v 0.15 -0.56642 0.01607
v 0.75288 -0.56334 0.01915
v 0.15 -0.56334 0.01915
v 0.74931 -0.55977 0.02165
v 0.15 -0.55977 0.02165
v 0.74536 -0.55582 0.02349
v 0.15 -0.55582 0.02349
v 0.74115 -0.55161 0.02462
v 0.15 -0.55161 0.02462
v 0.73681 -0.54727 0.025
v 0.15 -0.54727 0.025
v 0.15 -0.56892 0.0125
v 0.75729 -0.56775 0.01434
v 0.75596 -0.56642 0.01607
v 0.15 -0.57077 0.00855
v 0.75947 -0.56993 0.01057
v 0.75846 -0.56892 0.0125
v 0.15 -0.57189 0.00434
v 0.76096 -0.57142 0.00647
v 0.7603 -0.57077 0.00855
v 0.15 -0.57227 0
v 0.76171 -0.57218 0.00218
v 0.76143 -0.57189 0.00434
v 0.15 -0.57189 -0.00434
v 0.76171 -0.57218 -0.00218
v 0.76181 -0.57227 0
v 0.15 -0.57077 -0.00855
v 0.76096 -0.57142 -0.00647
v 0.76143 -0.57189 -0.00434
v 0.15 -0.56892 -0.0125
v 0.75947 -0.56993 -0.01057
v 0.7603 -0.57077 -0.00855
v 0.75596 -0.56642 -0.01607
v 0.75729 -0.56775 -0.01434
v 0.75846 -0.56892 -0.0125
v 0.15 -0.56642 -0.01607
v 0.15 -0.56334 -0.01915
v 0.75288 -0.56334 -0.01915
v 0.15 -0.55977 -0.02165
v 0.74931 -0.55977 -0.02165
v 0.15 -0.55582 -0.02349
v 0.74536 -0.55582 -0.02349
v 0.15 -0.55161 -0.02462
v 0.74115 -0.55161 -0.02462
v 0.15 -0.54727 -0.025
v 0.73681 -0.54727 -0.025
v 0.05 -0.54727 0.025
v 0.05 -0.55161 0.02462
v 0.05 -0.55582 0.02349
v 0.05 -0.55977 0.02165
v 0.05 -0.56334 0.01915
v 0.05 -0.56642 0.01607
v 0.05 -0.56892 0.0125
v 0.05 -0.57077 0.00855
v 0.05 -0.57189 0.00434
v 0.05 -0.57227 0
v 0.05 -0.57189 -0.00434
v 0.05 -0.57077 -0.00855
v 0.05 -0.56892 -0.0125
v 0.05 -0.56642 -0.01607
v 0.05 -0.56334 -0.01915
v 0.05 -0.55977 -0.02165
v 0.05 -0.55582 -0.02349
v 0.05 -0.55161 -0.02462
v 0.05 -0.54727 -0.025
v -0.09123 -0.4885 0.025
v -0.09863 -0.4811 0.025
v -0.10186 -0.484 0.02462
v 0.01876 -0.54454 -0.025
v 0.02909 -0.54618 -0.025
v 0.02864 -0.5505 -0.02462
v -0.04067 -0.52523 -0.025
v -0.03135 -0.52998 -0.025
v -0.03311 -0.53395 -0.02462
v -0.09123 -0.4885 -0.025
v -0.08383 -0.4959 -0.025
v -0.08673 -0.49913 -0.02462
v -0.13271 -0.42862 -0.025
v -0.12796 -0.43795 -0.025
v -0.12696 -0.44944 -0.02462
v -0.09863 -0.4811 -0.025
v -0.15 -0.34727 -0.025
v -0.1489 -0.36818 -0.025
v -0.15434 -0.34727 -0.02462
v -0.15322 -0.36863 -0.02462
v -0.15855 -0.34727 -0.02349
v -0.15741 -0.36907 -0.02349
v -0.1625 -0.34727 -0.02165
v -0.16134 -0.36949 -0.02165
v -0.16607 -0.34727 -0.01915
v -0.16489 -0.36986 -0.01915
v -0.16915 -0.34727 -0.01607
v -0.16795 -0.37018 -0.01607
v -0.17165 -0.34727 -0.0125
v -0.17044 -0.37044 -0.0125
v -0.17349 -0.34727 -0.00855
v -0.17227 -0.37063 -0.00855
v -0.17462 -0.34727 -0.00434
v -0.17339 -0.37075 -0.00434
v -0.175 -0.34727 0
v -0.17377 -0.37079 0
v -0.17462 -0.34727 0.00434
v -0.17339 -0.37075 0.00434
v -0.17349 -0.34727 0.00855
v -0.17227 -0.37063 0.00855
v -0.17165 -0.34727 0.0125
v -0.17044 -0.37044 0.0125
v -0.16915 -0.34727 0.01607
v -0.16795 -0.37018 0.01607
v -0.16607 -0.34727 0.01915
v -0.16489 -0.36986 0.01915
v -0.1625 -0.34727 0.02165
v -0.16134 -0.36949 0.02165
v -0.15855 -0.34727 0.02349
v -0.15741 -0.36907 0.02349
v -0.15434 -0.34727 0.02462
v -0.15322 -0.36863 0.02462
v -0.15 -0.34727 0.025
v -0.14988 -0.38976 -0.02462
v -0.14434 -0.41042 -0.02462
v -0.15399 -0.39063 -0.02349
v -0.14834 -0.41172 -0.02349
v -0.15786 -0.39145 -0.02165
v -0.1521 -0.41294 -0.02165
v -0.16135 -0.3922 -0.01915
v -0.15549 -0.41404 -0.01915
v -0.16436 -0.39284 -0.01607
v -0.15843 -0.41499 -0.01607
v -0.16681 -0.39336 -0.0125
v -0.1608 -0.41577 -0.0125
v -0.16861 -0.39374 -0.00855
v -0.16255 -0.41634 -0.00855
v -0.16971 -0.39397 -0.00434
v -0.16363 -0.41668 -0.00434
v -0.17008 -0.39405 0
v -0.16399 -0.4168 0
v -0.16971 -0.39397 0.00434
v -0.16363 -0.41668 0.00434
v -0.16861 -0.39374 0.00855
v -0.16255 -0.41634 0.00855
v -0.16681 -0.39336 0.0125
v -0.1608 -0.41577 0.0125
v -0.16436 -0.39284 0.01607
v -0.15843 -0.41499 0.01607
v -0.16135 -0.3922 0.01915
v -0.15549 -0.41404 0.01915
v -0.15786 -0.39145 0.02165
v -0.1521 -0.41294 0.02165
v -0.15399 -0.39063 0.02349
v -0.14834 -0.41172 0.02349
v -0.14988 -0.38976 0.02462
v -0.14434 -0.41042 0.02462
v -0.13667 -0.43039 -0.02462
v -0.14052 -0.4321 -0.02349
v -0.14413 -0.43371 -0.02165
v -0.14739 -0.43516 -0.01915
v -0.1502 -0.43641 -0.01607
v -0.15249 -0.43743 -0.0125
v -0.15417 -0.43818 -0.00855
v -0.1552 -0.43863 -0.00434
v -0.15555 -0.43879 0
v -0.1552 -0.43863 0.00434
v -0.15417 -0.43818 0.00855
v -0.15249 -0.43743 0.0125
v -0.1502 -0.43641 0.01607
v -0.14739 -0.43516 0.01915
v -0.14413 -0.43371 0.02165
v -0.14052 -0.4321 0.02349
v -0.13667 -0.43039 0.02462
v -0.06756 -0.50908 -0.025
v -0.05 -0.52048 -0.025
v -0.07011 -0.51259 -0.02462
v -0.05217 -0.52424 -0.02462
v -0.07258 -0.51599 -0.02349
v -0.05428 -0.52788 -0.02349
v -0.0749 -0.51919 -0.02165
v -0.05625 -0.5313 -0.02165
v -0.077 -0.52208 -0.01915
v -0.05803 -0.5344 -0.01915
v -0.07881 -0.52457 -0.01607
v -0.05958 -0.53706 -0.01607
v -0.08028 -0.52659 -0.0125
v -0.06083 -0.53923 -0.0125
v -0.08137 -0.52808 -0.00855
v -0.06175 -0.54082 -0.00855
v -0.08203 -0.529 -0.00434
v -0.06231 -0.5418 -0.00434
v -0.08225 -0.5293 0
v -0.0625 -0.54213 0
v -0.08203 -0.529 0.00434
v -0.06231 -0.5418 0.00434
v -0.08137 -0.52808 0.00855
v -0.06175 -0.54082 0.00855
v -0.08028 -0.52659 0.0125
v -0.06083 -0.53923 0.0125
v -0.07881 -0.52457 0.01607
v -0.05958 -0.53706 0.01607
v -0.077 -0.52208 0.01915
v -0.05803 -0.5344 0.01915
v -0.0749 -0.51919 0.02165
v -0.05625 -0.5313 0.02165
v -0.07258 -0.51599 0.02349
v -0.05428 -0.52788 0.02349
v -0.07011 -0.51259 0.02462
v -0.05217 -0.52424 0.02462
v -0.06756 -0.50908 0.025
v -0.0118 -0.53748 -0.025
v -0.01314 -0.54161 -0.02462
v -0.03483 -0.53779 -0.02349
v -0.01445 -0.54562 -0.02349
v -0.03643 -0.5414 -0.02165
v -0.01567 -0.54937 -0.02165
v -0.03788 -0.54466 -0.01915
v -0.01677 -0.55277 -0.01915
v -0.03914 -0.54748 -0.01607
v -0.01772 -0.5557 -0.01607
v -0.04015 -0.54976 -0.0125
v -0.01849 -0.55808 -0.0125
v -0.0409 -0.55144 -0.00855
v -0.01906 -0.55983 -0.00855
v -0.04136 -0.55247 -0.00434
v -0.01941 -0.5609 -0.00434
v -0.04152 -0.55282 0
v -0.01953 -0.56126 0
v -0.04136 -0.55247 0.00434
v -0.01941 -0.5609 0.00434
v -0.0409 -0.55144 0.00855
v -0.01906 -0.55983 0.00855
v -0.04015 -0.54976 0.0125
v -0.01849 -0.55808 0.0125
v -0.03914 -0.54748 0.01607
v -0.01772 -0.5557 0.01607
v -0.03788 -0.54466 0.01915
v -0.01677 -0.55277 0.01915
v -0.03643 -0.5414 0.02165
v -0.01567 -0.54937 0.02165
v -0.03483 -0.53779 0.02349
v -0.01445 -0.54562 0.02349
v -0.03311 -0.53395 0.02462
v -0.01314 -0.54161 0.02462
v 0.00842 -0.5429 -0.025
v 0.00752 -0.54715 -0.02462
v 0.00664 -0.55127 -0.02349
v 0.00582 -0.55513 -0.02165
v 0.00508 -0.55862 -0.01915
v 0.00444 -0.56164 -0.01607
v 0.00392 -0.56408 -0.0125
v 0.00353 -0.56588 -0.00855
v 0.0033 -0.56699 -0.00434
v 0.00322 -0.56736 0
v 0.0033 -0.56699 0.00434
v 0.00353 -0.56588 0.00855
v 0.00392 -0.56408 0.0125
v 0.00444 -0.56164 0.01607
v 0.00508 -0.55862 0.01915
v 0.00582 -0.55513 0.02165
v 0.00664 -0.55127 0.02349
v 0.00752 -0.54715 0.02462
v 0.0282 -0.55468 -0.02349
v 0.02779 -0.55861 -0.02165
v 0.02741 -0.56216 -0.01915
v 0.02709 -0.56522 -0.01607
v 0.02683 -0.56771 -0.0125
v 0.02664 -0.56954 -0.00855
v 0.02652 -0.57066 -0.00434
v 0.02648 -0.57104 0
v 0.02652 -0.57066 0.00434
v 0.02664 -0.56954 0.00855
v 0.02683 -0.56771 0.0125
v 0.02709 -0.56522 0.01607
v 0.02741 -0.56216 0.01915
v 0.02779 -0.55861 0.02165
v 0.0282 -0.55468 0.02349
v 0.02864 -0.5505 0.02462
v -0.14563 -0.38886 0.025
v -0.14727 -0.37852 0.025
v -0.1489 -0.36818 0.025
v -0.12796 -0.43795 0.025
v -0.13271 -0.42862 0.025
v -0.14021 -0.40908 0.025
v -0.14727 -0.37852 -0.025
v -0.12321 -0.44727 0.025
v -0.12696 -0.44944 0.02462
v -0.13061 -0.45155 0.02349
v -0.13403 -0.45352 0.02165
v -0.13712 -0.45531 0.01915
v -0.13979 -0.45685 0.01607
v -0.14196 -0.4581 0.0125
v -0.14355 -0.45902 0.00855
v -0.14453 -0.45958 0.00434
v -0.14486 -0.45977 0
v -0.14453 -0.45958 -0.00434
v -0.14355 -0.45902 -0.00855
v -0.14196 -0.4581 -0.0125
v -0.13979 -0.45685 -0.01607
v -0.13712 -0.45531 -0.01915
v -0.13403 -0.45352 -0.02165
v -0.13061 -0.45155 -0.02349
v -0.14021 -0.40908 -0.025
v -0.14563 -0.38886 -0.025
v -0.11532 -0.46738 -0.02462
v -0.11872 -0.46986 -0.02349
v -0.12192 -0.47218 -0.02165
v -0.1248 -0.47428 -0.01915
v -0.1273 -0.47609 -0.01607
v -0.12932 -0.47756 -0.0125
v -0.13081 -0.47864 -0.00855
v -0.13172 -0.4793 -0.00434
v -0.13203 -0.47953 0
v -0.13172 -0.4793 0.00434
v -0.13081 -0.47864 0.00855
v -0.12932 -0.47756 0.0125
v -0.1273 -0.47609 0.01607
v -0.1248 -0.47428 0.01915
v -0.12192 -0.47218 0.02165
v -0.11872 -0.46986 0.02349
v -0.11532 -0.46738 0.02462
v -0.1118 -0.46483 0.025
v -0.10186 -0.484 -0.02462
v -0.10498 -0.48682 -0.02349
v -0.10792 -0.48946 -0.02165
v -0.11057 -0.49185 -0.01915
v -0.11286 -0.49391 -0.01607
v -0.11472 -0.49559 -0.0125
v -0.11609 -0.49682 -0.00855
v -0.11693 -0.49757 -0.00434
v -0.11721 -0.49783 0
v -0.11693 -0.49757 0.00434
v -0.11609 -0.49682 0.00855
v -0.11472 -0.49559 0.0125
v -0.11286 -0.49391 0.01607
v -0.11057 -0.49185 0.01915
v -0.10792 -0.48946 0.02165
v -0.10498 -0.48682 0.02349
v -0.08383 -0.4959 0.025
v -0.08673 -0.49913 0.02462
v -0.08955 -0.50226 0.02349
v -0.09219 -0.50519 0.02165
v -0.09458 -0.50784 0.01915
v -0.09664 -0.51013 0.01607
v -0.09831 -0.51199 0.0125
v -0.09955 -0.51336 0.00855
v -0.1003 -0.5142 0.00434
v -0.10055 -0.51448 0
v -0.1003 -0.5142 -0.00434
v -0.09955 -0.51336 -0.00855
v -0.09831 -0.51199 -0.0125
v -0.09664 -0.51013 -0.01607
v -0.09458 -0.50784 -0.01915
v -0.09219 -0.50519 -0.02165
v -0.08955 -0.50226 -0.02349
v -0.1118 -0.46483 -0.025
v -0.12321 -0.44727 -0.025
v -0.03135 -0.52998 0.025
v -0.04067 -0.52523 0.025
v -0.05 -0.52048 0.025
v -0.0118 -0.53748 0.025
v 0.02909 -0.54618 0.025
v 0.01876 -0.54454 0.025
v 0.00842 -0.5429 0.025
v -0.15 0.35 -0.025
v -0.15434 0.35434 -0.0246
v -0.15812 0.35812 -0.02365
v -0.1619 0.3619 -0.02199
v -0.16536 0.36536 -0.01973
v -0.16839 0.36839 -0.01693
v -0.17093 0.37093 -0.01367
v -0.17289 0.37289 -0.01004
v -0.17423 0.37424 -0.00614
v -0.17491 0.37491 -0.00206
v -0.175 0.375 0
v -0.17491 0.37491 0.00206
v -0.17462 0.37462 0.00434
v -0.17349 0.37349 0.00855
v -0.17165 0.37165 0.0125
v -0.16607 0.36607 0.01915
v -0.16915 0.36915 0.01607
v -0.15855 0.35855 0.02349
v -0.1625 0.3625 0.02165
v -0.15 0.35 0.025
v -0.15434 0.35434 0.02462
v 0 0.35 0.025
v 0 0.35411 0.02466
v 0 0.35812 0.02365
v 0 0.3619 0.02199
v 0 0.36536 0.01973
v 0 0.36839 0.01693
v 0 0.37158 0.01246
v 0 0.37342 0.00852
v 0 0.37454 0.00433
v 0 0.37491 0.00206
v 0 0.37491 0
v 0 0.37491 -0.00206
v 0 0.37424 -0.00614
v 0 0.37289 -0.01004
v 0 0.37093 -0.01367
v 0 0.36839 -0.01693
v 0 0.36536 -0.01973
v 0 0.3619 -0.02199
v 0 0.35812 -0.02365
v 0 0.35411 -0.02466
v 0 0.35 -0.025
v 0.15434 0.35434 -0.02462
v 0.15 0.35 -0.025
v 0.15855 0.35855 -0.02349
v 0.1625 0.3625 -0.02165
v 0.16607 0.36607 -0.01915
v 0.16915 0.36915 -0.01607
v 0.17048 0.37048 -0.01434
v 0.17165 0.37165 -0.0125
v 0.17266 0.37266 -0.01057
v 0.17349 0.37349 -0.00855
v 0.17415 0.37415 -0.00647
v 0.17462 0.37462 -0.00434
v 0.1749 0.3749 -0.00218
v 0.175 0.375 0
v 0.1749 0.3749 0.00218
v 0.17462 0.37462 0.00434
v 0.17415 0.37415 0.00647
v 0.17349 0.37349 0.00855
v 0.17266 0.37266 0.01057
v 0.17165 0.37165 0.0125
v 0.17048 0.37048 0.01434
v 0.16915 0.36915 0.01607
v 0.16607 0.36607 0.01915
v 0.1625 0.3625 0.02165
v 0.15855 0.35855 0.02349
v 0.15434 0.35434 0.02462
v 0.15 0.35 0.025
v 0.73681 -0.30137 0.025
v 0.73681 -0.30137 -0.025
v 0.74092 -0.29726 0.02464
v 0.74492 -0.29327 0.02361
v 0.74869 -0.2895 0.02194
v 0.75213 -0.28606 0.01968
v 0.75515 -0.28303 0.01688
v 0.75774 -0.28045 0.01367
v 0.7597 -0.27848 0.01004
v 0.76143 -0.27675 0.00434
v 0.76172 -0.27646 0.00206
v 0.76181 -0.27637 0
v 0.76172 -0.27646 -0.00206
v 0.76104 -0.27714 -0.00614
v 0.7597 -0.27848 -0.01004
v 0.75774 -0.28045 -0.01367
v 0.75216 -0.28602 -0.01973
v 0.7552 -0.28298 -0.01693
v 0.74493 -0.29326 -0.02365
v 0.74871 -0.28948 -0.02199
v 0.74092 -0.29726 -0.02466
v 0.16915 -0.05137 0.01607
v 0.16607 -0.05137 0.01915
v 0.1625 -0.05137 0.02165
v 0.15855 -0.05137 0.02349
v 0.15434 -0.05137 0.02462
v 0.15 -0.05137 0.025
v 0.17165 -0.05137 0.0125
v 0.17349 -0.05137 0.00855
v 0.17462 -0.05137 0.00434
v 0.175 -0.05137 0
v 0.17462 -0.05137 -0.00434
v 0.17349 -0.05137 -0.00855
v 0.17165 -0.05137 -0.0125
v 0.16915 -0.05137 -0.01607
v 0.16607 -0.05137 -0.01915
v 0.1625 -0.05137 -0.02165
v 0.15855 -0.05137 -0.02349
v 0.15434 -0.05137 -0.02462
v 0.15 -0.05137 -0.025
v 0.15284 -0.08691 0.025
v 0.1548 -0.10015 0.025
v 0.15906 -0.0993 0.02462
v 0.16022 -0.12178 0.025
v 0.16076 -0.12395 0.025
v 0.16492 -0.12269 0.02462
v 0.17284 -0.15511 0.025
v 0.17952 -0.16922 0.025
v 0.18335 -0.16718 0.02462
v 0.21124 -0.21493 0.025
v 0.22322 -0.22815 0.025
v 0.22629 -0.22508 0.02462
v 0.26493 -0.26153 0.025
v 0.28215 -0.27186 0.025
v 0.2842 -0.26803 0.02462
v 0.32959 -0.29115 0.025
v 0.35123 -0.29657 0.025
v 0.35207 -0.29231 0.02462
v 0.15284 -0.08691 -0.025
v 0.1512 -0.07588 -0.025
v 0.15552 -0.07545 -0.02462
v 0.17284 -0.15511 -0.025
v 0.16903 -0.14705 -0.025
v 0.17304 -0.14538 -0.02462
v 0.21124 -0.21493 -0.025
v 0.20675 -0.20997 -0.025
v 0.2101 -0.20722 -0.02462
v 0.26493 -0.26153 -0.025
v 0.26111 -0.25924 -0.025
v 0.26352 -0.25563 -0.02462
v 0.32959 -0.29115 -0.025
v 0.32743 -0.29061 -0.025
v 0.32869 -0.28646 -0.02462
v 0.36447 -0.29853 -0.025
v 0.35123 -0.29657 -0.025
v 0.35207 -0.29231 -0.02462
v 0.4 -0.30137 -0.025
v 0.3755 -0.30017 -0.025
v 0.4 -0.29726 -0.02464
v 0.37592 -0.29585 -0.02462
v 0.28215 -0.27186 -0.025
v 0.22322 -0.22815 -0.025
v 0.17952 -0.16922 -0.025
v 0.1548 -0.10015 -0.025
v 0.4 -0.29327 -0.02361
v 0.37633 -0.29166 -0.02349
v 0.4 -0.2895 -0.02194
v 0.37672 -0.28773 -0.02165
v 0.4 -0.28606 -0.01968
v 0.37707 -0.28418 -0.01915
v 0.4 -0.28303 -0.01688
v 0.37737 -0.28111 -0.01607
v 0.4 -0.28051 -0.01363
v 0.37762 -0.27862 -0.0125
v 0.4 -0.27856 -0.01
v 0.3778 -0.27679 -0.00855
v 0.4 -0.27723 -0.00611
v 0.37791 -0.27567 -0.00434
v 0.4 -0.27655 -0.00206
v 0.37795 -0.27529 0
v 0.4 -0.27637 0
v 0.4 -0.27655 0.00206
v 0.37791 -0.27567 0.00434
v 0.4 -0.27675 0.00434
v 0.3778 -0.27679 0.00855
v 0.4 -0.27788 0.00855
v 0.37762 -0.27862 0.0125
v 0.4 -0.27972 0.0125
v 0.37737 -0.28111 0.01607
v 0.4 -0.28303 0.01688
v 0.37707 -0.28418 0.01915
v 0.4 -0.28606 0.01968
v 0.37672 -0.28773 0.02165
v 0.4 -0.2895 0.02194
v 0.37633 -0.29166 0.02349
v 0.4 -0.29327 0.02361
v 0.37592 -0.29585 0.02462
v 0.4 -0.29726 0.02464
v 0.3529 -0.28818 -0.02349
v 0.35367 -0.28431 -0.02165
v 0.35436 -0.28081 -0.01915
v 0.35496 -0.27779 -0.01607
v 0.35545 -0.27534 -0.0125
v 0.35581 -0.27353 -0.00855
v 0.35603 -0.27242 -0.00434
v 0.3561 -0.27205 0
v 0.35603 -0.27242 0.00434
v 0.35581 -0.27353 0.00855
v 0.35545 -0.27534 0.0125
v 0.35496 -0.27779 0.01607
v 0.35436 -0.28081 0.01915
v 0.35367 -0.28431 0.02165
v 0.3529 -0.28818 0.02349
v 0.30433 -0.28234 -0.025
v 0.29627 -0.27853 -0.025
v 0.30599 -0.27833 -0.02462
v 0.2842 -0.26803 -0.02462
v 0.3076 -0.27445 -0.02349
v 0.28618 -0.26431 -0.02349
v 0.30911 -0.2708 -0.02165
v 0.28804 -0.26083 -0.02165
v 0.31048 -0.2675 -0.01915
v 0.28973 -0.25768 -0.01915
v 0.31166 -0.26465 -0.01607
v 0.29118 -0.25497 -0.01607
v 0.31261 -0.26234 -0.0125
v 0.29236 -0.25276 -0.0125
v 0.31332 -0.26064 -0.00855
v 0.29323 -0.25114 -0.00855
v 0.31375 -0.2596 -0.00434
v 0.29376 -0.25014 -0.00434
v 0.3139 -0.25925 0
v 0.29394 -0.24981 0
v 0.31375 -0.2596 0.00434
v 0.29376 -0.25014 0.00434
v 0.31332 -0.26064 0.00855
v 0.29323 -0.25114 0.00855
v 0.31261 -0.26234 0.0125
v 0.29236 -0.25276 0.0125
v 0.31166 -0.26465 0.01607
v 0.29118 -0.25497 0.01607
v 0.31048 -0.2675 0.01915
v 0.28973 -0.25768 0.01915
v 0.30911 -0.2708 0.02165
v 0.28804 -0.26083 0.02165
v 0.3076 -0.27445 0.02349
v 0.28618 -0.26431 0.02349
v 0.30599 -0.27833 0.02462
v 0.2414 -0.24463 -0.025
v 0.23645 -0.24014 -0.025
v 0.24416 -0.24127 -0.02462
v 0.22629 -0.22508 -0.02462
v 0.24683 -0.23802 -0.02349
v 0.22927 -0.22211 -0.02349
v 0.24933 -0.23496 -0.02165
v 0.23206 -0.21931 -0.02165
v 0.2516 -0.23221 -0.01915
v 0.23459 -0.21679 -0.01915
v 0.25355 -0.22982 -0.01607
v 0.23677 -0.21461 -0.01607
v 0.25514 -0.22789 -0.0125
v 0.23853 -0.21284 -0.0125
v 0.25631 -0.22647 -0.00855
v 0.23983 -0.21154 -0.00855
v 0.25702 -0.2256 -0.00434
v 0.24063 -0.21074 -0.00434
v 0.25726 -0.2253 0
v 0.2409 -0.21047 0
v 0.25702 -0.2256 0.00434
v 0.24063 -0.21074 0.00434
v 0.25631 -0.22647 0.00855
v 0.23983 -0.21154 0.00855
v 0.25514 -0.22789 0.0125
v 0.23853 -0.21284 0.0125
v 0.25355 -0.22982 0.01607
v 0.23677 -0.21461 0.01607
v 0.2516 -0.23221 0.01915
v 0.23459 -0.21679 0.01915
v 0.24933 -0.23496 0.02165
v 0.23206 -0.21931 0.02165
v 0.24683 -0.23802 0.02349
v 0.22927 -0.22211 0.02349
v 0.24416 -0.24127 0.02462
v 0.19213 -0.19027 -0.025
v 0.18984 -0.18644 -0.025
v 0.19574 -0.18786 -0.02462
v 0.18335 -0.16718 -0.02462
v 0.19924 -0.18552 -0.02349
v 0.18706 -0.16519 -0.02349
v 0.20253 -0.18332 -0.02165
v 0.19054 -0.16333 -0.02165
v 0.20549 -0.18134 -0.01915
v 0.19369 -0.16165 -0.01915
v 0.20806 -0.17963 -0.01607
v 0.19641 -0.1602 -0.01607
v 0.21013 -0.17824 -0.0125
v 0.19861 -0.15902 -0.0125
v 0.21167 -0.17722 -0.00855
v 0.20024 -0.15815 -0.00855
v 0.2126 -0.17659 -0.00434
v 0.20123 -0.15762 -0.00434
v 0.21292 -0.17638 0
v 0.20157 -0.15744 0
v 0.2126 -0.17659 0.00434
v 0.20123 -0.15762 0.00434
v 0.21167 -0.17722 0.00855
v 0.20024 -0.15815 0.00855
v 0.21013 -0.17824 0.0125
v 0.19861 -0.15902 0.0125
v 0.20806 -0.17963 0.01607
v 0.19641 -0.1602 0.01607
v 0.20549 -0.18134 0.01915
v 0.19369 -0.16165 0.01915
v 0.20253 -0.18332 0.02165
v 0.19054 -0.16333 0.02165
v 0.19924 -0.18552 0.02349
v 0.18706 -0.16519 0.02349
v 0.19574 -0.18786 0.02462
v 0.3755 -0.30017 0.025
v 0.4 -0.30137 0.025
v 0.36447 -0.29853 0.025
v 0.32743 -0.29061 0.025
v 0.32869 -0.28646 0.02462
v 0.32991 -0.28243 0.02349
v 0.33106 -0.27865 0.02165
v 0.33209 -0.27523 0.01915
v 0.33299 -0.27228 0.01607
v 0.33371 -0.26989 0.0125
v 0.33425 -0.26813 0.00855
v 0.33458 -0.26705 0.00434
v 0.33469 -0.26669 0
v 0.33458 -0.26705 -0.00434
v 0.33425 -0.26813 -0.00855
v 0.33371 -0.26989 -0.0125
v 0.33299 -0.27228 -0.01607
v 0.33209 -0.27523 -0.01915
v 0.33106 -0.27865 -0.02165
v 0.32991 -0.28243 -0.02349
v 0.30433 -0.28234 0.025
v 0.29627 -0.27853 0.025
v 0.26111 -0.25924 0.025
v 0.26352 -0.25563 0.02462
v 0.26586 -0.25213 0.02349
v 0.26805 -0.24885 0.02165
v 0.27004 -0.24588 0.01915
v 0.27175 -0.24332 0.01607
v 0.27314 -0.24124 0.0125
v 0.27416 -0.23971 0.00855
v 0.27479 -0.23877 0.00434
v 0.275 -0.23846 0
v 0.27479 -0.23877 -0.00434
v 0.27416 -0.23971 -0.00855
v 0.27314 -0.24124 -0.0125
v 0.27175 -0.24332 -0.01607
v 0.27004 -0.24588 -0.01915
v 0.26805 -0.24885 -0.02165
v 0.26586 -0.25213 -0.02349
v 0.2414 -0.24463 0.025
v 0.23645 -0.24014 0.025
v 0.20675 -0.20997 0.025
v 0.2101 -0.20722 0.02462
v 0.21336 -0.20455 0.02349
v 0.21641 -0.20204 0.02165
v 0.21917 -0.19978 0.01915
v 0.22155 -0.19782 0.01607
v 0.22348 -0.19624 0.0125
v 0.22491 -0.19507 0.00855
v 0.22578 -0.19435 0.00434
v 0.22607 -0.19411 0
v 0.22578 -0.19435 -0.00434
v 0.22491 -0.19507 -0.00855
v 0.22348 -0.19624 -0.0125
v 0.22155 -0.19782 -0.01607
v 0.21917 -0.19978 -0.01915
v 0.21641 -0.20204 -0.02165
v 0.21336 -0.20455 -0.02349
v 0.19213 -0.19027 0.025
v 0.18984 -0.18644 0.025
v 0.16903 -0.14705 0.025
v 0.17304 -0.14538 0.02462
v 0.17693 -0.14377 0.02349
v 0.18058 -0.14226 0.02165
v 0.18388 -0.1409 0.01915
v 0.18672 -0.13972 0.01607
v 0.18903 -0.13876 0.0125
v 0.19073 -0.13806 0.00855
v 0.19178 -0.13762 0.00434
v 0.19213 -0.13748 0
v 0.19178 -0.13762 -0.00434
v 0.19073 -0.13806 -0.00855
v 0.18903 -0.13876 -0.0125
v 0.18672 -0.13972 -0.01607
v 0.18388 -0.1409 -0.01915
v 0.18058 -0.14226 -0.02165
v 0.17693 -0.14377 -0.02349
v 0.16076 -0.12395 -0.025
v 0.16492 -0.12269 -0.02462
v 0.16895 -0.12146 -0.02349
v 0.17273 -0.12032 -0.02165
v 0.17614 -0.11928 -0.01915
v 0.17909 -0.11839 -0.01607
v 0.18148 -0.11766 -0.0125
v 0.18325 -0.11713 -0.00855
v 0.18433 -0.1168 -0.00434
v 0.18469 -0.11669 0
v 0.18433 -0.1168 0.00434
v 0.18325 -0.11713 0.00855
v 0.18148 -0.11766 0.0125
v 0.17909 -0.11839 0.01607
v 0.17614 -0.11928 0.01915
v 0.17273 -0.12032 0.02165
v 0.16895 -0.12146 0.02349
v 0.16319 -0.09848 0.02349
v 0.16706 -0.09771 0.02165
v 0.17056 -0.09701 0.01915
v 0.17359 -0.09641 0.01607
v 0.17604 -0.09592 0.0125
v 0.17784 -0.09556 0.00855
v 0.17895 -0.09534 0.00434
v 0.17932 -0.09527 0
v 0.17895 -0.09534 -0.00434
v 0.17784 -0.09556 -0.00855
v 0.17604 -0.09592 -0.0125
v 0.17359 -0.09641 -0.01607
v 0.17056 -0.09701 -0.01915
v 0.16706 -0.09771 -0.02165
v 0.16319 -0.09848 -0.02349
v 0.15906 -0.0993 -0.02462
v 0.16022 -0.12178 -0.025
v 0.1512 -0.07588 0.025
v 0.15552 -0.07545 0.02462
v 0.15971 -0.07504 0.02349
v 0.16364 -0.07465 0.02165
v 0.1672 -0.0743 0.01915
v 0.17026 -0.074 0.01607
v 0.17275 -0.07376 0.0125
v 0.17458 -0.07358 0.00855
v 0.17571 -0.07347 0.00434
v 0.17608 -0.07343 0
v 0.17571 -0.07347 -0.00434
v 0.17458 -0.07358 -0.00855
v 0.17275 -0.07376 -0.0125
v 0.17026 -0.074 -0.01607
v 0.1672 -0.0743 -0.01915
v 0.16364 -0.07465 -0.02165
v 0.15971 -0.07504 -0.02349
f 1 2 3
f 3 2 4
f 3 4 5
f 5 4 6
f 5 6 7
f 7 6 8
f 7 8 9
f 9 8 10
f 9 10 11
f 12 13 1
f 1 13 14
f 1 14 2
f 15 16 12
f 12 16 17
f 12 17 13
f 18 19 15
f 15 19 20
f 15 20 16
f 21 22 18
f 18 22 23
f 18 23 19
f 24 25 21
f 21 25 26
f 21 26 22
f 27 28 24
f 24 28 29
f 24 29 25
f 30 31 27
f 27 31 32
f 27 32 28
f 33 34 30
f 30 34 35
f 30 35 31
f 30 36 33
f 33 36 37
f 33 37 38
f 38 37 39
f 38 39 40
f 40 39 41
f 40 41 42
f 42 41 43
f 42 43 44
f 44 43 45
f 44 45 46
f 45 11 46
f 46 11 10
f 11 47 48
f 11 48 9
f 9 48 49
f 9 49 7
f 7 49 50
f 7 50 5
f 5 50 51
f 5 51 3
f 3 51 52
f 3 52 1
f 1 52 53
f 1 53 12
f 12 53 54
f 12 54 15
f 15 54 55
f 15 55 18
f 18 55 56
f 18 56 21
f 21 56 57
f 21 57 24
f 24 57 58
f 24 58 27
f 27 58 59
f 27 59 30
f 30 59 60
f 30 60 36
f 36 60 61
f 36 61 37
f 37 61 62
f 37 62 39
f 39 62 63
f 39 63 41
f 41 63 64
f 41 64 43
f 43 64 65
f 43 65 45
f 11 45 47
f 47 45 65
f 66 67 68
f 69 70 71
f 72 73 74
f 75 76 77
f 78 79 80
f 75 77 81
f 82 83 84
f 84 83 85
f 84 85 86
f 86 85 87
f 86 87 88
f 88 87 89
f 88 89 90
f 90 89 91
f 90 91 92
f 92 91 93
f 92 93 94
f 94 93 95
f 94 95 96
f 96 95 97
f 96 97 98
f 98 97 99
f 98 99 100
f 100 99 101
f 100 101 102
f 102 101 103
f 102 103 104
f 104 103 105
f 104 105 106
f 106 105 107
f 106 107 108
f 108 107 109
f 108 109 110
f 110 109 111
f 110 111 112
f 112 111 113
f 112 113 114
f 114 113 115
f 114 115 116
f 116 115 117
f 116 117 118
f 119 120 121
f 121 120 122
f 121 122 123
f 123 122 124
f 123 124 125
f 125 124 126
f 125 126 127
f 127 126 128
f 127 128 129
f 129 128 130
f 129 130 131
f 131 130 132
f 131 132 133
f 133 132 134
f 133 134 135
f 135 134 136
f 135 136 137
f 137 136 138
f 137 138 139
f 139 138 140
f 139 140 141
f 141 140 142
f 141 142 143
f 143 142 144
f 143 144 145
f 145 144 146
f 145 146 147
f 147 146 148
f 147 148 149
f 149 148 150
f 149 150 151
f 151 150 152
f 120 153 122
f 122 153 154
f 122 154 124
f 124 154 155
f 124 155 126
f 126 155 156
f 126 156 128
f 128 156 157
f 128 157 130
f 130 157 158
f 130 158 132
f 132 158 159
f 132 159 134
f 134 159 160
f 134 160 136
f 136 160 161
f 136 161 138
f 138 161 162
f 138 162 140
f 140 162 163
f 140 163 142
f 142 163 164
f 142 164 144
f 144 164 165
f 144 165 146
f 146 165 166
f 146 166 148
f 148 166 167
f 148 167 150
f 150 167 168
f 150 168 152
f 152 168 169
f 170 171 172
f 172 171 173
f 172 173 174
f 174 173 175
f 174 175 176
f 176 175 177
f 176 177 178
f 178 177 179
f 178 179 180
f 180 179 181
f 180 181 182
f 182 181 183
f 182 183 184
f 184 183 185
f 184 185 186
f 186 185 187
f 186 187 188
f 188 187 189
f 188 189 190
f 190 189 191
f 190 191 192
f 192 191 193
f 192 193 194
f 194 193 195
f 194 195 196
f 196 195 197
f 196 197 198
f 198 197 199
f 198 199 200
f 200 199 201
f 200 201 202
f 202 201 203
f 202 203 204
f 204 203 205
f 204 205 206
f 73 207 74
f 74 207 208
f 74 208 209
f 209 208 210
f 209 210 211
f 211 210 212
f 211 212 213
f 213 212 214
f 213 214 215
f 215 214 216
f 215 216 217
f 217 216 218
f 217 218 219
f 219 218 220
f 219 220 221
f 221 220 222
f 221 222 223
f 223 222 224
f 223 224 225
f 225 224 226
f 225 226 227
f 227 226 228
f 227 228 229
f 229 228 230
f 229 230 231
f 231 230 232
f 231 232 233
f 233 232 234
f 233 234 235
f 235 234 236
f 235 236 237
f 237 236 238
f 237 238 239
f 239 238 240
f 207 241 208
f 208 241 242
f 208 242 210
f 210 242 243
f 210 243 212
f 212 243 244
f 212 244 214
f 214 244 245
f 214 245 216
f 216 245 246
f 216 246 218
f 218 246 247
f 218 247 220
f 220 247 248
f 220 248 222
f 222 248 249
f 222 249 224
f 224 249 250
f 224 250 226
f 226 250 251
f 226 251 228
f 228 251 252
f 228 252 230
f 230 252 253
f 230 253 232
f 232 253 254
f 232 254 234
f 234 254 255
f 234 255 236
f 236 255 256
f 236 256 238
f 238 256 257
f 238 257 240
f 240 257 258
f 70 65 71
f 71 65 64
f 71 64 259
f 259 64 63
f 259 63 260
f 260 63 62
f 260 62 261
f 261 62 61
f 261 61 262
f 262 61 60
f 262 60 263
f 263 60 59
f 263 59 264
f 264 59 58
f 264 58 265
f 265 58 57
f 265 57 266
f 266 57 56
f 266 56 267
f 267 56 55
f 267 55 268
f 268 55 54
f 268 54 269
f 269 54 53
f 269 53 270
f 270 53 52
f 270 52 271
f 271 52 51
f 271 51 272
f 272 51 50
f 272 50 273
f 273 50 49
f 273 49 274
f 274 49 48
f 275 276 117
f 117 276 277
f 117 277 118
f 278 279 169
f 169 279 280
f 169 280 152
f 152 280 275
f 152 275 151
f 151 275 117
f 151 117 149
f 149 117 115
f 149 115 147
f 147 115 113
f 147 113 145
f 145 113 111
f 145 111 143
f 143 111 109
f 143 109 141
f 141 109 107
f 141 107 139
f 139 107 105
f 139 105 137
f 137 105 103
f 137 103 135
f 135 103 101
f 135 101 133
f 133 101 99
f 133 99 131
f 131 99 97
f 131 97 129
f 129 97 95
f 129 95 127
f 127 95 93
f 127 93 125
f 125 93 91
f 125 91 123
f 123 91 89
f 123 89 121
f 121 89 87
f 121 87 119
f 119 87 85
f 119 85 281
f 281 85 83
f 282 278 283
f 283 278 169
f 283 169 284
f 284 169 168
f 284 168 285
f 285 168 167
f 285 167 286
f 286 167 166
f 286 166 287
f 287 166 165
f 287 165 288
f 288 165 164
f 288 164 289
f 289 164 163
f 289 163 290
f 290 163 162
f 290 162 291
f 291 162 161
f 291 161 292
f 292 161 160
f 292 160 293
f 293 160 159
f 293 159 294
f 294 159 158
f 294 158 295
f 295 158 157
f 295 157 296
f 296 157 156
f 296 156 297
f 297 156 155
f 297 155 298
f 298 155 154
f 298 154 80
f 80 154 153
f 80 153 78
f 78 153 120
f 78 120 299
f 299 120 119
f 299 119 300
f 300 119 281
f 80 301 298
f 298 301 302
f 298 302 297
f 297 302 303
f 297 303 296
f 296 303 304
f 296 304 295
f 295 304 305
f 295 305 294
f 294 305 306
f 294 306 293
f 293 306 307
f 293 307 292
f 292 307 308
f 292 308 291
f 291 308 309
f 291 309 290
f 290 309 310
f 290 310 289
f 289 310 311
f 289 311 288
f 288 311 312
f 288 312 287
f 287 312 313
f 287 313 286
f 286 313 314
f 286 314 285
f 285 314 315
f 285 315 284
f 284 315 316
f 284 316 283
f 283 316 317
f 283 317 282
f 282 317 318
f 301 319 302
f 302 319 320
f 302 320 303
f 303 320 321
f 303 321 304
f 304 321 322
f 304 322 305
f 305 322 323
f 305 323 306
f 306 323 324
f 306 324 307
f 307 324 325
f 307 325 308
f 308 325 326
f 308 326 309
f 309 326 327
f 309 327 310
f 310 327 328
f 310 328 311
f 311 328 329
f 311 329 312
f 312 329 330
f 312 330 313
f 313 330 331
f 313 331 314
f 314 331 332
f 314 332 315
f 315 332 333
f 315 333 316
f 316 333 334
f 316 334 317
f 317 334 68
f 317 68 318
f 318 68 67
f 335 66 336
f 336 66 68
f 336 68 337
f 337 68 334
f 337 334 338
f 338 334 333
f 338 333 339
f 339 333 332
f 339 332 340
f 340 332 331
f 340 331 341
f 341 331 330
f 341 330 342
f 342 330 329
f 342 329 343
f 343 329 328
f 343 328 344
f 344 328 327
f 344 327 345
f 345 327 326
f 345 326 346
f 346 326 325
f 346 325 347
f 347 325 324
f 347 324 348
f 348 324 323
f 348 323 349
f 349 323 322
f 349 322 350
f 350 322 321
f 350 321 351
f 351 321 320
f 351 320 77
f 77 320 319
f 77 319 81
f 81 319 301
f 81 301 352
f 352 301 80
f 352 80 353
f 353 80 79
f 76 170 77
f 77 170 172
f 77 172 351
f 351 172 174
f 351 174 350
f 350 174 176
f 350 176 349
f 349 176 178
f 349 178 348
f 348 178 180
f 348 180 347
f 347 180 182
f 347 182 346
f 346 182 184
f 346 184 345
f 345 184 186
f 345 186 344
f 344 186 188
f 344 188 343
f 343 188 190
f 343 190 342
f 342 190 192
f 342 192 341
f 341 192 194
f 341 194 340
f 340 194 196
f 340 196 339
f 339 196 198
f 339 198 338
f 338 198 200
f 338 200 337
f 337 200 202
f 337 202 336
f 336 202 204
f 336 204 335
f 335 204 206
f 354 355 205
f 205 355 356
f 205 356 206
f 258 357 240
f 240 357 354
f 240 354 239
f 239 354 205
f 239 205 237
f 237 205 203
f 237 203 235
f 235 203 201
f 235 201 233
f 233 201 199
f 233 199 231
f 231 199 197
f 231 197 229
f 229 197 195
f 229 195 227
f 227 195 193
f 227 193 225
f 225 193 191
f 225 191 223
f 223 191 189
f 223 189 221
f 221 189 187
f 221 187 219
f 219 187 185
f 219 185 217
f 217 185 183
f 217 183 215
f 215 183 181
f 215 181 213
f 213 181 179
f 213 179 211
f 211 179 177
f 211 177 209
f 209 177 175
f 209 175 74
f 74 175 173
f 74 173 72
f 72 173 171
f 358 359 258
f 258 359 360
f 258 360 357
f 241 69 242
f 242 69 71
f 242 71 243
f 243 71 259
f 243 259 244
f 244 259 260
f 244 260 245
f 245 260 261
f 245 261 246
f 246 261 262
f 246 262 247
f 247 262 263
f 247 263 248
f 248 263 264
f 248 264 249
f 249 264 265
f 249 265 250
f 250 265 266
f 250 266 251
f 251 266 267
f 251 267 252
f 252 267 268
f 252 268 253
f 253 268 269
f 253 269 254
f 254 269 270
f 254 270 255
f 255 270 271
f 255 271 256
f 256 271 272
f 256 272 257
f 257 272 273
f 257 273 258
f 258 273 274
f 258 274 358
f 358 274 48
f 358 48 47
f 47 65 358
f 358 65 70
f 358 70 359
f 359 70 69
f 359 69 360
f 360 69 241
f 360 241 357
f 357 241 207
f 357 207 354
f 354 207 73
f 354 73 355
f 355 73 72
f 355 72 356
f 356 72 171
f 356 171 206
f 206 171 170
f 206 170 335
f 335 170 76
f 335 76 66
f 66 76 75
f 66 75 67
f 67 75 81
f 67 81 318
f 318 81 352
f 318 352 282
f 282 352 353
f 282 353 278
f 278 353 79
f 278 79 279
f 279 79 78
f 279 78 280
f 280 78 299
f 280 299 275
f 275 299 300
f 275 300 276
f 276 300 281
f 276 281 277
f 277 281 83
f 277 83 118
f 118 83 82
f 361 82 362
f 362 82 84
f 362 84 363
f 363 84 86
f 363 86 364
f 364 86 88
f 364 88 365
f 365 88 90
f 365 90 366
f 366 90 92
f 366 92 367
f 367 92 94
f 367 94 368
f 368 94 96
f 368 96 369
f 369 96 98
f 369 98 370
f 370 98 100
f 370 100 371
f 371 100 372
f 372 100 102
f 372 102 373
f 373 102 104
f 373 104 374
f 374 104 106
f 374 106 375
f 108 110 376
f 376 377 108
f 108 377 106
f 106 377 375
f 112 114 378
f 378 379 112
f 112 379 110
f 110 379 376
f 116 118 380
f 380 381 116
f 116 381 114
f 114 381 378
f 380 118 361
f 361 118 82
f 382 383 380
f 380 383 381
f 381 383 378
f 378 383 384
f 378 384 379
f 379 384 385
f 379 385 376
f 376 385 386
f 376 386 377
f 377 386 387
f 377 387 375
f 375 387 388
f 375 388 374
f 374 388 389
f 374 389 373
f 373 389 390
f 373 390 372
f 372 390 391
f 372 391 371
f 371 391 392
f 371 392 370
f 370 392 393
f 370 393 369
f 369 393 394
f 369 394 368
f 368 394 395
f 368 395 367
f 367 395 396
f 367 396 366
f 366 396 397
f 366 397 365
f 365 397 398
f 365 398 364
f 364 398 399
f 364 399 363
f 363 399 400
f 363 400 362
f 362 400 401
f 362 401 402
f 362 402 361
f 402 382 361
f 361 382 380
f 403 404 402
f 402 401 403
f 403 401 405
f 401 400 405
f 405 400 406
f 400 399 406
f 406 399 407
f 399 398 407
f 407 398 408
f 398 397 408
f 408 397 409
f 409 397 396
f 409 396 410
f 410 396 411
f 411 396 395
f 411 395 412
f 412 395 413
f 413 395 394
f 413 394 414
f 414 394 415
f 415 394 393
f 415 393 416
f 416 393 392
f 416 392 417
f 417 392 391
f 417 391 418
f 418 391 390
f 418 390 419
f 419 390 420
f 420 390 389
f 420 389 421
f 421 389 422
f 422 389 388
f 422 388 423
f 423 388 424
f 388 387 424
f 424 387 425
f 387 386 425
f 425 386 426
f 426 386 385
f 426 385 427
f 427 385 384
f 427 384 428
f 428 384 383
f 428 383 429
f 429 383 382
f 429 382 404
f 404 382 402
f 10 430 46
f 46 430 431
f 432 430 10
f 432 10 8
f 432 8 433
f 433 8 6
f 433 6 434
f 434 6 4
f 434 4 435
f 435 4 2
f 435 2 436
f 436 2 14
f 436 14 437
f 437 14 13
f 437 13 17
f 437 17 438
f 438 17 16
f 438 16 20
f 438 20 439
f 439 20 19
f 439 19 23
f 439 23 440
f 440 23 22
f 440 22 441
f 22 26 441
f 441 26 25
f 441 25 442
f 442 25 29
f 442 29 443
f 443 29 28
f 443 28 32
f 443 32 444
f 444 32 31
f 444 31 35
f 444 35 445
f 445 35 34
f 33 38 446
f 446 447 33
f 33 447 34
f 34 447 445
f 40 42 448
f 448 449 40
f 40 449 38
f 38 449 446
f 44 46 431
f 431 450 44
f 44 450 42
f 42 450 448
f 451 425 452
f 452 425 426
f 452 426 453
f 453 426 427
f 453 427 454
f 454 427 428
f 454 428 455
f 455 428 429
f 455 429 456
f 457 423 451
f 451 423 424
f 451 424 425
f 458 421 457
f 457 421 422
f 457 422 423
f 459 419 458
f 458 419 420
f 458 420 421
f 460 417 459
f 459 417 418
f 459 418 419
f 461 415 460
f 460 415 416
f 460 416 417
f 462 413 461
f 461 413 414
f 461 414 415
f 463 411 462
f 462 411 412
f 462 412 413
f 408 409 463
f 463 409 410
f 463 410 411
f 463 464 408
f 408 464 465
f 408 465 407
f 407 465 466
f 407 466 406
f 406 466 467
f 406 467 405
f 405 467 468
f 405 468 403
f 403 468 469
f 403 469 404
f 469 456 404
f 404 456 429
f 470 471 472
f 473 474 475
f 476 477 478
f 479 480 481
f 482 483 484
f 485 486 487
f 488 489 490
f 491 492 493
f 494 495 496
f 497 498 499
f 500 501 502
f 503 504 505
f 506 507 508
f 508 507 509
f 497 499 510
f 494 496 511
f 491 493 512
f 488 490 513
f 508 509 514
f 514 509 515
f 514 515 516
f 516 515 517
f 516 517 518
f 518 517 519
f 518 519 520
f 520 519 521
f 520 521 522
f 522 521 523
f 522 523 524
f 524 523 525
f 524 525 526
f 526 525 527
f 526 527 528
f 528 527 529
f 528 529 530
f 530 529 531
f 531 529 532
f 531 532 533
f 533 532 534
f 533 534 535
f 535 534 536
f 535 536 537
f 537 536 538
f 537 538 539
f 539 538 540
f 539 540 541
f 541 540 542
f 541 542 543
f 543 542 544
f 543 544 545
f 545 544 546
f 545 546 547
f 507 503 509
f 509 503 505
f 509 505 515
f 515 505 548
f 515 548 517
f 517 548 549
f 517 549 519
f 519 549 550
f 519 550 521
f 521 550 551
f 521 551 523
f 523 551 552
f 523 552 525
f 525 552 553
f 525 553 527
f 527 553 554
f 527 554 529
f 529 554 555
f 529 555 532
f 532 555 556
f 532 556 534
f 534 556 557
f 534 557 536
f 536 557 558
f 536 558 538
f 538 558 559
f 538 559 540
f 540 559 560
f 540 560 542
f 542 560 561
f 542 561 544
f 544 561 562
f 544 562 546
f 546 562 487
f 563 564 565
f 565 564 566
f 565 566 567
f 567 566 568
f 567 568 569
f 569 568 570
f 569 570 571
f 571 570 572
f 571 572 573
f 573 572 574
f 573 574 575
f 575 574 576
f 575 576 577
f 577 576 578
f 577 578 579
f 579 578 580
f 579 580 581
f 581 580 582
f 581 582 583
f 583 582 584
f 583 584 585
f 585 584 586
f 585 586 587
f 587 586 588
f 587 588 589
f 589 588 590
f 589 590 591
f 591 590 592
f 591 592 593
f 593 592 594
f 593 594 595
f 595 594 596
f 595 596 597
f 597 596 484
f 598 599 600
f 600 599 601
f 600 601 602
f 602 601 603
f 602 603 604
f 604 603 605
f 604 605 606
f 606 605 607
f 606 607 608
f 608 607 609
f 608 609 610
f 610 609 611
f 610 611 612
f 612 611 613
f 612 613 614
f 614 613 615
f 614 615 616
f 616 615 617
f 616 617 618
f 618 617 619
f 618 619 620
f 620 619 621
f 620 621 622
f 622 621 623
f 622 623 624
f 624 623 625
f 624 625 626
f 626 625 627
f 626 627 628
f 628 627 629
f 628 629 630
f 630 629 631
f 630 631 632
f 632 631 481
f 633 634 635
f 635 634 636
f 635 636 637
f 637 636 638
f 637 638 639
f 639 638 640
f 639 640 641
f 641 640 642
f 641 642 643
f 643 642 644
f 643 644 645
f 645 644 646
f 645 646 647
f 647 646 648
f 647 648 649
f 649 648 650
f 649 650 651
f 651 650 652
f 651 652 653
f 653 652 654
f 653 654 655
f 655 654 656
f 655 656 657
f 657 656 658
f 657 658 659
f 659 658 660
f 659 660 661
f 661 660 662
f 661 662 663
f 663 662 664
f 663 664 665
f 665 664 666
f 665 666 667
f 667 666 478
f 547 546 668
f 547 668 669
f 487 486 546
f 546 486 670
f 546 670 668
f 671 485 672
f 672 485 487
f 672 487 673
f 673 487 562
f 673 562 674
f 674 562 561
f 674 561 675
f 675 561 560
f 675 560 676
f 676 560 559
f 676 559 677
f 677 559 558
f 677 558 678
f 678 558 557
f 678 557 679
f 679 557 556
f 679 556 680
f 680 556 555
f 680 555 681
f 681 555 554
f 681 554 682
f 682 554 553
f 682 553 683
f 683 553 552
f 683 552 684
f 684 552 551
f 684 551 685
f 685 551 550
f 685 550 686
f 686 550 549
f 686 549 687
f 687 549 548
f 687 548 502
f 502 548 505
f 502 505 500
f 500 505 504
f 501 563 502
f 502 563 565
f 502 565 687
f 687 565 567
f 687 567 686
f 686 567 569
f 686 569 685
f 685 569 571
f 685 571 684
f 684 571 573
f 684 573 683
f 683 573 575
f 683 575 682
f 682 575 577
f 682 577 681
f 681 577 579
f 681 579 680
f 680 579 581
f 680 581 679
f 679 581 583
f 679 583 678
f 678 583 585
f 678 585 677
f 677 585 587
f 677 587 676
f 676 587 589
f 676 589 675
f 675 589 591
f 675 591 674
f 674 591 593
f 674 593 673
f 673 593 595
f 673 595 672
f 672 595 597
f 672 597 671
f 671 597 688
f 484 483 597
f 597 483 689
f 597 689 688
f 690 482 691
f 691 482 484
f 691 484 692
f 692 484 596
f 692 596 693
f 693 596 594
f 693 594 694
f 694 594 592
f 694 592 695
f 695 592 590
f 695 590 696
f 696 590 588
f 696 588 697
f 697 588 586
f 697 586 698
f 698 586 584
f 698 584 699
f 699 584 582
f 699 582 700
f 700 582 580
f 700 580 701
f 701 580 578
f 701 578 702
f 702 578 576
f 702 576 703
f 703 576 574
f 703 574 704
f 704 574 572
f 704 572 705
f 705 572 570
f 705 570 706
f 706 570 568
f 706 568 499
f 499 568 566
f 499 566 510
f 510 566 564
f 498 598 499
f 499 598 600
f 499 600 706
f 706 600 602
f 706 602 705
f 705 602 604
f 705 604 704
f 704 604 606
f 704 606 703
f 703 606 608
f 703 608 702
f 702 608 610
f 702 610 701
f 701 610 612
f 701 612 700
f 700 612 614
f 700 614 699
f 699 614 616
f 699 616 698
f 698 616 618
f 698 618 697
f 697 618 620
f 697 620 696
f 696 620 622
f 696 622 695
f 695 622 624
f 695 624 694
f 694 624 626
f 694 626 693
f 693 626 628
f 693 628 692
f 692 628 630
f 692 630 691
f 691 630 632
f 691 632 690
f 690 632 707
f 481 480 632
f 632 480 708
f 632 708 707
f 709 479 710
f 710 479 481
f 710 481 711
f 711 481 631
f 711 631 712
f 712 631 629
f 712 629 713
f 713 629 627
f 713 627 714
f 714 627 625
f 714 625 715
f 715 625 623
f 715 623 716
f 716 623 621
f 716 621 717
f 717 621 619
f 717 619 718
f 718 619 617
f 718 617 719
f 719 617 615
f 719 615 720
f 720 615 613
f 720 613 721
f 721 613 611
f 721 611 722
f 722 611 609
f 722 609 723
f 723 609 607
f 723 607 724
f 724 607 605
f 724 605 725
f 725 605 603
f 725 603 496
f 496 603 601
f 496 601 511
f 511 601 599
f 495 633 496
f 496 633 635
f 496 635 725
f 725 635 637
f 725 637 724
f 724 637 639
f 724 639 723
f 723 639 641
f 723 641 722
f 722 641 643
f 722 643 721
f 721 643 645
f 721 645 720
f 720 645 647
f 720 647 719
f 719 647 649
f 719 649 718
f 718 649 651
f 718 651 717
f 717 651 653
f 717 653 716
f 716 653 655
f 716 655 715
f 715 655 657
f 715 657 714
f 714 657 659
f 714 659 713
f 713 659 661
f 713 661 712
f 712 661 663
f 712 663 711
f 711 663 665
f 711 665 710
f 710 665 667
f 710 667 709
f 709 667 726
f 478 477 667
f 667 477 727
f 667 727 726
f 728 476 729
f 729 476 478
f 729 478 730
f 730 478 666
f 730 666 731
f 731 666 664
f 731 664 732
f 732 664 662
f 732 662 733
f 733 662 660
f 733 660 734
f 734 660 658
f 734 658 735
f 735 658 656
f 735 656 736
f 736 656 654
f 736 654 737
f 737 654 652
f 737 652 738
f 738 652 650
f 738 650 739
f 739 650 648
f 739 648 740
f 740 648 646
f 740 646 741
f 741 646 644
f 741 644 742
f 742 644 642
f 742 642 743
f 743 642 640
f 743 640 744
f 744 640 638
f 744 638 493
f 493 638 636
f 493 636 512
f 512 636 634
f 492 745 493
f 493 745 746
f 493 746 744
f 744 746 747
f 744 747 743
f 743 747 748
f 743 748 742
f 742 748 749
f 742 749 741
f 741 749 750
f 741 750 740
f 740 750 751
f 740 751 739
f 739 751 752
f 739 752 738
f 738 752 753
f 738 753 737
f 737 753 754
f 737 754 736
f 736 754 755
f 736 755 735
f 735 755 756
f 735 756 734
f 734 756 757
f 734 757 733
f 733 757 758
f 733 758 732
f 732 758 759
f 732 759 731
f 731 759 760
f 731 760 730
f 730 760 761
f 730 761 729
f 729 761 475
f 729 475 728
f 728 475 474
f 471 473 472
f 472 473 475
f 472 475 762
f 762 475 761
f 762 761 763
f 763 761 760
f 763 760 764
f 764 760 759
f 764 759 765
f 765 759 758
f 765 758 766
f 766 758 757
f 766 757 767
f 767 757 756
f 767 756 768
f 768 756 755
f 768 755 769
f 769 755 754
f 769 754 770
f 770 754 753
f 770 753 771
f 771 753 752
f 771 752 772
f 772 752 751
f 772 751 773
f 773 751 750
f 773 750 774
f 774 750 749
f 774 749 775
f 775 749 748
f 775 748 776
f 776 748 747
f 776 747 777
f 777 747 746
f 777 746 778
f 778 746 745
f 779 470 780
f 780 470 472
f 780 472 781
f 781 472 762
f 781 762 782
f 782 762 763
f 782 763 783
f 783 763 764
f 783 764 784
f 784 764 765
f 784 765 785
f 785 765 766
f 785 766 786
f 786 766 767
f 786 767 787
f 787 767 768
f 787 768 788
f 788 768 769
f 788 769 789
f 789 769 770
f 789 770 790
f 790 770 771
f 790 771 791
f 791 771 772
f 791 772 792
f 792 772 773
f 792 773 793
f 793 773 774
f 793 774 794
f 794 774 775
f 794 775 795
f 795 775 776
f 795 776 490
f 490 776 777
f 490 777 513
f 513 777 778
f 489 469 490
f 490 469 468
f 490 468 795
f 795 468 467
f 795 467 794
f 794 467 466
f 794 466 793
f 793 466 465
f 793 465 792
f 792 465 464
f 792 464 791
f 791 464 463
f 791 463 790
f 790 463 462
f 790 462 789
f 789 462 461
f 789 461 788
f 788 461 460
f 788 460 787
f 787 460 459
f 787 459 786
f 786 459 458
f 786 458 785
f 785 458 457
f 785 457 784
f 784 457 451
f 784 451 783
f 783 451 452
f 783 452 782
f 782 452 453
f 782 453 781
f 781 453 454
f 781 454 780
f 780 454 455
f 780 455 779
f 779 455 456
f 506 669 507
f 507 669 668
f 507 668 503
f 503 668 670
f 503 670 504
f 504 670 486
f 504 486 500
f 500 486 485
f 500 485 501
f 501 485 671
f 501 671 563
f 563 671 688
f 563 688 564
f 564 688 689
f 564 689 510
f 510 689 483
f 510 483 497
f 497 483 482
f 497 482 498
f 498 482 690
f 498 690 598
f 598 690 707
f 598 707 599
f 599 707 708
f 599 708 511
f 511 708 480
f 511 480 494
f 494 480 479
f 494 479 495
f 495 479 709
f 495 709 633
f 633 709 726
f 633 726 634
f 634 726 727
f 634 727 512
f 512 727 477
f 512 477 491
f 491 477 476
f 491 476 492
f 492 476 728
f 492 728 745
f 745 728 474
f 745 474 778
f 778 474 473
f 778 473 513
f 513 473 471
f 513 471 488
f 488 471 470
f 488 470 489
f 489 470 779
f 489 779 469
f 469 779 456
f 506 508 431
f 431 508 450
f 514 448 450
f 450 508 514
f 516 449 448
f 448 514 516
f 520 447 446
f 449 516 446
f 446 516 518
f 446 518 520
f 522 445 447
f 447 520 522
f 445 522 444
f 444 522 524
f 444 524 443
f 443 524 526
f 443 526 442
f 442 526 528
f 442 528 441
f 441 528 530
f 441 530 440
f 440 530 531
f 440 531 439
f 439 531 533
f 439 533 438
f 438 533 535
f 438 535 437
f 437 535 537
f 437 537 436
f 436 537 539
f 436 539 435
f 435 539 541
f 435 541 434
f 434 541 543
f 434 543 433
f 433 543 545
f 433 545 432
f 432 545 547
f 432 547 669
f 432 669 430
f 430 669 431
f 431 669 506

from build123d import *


with BuildPart() as part:
    # Sweep1: sweep along a path in Sketch2
    with BuildLine(Plane.XY) as sweep1_path:
        Line((-0.15, 0.35), (0.15, 0.35))
        Line((0.15, 0.35), (0.15, -0.051374847))
        ThreePointArc((0.15, -0.051374847), (0.223223305, -0.228151543), (0.4, -0.301374847))
        Line((0.4, -0.301374847), (0.736808624, -0.301374847))
        Line((0.736808624, -0.301374847), (0.736808624, -0.547273546))
        Line((0.736808624, -0.547273546), (0.15, -0.547273546))
        Line((0.15, -0.547273546), (0.05, -0.547273546))
        ThreePointArc((0.05, -0.547273546), (-0.091421356, -0.488694902), (-0.15, -0.347273546))
        Line((-0.15, -0.347273546), (-0.15, 0.35))
    # Sketch1 → Sweep1 (sweep)
    with BuildSketch(Plane(origin=(0, 0, 0), x_dir=(0, 0, -1), z_dir=(1, 0, 0))):
        with BuildLine():
            Line((-0.025, 0.35), (0.025, 0.35))
            ThreePointArc((0.025, 0.35), (0, 0.375), (-0.025, 0.35))
        make_face()
    sweep(path=sweep1_path.line, transition=Transition.RIGHT)


solid = part.part
